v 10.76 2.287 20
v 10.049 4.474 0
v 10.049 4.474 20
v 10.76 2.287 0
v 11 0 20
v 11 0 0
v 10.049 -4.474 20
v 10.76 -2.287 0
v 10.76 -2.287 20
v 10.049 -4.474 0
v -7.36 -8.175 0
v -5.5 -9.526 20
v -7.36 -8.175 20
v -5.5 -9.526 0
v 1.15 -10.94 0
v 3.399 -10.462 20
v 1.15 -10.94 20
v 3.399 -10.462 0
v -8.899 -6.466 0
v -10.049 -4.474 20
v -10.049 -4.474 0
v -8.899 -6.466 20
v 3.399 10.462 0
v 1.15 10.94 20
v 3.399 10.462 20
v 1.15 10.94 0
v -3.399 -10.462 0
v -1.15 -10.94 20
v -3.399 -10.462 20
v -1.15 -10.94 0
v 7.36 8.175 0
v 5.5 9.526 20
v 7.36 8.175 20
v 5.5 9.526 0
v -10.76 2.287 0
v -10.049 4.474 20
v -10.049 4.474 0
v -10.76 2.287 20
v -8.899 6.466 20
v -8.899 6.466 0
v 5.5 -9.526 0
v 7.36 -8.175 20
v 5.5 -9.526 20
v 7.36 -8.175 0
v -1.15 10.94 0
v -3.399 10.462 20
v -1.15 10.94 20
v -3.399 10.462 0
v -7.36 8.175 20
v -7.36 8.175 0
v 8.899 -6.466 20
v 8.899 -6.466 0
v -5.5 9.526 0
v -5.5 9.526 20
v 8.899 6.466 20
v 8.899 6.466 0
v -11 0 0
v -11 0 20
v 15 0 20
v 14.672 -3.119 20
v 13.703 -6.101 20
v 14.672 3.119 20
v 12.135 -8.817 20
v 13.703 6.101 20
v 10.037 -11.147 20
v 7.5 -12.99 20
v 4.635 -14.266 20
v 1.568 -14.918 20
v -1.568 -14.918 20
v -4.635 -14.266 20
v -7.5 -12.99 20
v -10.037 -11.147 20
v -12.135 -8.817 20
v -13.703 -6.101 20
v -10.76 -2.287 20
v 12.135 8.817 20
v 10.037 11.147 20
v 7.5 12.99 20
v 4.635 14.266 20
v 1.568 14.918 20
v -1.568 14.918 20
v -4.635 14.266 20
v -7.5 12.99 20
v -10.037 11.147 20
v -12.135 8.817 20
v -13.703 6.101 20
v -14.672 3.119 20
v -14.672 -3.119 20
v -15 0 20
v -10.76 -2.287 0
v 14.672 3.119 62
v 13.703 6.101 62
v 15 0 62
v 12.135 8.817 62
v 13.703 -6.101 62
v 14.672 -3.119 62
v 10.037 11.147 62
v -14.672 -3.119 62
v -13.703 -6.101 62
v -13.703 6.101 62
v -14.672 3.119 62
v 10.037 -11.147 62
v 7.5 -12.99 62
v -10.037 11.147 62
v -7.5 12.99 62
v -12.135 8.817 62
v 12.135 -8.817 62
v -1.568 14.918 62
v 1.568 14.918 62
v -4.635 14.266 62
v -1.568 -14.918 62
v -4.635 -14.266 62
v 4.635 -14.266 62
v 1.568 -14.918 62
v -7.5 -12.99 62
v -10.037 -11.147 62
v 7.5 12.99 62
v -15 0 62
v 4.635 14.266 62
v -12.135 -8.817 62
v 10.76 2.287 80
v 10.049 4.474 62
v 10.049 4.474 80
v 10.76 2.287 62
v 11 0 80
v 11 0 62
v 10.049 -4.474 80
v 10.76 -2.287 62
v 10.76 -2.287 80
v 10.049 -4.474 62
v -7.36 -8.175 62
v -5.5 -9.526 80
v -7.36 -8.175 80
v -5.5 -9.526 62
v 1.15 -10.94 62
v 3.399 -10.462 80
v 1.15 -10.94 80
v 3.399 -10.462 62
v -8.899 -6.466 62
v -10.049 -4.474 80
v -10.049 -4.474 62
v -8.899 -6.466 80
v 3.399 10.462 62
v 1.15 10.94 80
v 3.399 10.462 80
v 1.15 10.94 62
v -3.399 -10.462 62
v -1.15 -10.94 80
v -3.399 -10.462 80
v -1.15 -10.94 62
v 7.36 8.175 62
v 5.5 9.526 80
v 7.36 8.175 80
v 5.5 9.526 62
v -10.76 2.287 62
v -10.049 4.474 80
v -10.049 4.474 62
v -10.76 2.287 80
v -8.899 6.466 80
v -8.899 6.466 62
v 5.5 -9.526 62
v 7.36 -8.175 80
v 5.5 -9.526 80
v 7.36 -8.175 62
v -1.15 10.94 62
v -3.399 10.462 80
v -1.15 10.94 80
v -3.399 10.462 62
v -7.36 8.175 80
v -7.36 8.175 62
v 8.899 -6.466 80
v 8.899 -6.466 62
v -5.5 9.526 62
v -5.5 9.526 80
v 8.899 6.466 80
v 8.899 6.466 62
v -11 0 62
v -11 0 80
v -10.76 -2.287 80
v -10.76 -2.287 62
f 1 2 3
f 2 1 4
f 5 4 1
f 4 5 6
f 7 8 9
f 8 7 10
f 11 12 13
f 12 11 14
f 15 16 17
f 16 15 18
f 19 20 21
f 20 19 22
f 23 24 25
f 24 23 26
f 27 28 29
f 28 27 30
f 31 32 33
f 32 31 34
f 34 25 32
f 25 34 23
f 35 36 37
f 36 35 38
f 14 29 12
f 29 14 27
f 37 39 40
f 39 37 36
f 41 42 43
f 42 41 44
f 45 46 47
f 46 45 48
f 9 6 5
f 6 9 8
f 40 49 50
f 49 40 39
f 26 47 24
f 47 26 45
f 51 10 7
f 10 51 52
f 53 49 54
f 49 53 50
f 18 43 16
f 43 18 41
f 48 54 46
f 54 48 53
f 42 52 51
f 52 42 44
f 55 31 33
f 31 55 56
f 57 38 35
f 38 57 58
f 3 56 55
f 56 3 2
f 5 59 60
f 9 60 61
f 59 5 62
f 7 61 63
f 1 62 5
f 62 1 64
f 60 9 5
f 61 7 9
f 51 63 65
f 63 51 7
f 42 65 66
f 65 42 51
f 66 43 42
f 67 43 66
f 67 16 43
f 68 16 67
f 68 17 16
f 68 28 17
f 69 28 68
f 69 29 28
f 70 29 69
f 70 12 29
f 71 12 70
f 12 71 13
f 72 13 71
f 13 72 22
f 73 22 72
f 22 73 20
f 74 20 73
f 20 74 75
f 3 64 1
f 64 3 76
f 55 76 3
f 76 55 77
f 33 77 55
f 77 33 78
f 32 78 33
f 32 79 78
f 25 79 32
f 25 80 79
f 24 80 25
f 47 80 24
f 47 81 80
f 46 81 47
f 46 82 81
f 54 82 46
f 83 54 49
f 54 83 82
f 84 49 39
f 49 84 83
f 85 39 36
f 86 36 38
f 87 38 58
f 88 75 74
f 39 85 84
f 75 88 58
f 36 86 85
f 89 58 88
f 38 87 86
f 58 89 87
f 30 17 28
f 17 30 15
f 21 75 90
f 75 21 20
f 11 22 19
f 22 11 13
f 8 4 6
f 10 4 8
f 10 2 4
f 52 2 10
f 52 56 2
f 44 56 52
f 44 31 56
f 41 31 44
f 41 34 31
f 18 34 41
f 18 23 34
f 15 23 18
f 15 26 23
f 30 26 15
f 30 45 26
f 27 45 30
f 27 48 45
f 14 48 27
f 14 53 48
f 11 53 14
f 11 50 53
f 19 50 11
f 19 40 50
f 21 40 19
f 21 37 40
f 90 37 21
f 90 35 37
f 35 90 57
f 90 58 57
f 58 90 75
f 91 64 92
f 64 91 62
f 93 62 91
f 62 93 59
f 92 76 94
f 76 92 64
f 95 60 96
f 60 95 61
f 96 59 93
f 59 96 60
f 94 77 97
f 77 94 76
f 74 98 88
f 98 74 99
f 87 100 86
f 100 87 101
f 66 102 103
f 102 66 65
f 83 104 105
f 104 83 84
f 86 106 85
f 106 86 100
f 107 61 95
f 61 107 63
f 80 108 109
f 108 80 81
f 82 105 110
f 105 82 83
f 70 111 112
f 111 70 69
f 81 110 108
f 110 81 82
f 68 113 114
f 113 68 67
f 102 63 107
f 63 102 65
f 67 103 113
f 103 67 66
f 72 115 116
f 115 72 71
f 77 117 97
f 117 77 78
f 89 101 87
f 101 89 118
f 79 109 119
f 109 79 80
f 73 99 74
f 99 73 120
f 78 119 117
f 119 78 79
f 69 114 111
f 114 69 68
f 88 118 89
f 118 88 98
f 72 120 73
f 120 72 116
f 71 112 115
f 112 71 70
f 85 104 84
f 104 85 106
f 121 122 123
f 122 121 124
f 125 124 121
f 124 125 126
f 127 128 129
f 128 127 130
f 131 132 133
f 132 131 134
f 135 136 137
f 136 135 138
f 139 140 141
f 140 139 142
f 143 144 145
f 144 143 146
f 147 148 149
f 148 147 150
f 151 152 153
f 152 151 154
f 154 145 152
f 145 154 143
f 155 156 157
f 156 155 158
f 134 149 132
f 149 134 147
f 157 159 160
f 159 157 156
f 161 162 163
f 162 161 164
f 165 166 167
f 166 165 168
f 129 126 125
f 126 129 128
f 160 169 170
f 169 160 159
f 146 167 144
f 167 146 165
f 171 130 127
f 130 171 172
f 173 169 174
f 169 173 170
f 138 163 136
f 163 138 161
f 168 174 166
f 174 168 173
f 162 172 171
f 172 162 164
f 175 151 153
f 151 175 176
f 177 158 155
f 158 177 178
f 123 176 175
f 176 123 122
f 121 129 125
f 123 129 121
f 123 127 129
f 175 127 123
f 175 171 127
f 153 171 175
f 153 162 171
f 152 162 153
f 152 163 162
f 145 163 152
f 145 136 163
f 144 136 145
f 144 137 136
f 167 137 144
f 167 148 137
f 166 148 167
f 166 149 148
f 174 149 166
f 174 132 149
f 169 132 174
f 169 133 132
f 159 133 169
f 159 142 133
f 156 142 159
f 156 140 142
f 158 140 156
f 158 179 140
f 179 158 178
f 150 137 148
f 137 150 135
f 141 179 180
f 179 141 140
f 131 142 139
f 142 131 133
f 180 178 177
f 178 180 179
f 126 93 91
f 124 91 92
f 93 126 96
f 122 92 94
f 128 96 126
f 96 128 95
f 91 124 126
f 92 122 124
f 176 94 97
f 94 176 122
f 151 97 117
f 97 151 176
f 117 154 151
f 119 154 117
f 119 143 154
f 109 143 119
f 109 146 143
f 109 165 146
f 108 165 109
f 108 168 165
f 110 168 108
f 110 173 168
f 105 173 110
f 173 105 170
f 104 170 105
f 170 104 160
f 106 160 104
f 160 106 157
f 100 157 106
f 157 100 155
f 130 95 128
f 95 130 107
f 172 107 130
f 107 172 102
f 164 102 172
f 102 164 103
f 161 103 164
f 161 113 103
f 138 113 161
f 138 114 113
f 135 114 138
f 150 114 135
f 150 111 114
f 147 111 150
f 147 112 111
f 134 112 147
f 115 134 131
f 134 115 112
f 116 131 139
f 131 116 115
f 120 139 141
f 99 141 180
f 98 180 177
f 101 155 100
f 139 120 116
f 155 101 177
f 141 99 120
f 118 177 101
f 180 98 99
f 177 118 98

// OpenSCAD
// Parameters for dimensions
input_cylinder_diameter = 22; // Diameter of the input cylinder
input_cylinder_height = 20;  // Reduced height of the input cylinder to match the original model

central_cylinder_diameter = 30; // Diameter of the central cylinder remains unchanged
central_cylinder_height = 40;   // Height of the central cylinder remains unchanged

output_cylinder_diameter = 22; // Diameter of the output cylinder
output_cylinder_height = 20;  // Reduced height of the output cylinder to match the original model

// Positional offsets
input_cylinder_offset = 0; // Topmost position
central_cylinder_offset = input_cylinder_height; // Below the input cylinder
output_cylinder_offset = input_cylinder_height + central_cylinder_height; // Below the central cylinder

// Input Cylinder
translate([0, 0, input_cylinder_offset])
cylinder(h = input_cylinder_height, d = input_cylinder_diameter, center = false);

// Central Cylinder
translate([0, 0, central_cylinder_offset])
cylinder(h = central_cylinder_height, d = central_cylinder_diameter, center = false);

// Output Cylinder
translate([0, 0, output_cylinder_offset])
cylinder(h = output_cylinder_height, d = output_cylinder_diameter, center = false);

// Smooth transitions between cylinders
module smooth_transition(d1, d2, h, z_offset) {
    translate([0, 0, z_offset])
    linear_extrude(height = h)
    scale([1, 1, 1])
    circle(d = d1);
    scale([d2 / d1, d2 / d1, 1])
    circle(d = d2);
}

// Smooth transition between input cylinder and central cylinder
smooth_transition(input_cylinder_diameter, central_cylinder_diameter, 2, input_cylinder_height);

// Smooth transition between central cylinder and output cylinder
smooth_transition(central_cylinder_diameter, output_cylinder_diameter, 2, output_cylinder_offset);
